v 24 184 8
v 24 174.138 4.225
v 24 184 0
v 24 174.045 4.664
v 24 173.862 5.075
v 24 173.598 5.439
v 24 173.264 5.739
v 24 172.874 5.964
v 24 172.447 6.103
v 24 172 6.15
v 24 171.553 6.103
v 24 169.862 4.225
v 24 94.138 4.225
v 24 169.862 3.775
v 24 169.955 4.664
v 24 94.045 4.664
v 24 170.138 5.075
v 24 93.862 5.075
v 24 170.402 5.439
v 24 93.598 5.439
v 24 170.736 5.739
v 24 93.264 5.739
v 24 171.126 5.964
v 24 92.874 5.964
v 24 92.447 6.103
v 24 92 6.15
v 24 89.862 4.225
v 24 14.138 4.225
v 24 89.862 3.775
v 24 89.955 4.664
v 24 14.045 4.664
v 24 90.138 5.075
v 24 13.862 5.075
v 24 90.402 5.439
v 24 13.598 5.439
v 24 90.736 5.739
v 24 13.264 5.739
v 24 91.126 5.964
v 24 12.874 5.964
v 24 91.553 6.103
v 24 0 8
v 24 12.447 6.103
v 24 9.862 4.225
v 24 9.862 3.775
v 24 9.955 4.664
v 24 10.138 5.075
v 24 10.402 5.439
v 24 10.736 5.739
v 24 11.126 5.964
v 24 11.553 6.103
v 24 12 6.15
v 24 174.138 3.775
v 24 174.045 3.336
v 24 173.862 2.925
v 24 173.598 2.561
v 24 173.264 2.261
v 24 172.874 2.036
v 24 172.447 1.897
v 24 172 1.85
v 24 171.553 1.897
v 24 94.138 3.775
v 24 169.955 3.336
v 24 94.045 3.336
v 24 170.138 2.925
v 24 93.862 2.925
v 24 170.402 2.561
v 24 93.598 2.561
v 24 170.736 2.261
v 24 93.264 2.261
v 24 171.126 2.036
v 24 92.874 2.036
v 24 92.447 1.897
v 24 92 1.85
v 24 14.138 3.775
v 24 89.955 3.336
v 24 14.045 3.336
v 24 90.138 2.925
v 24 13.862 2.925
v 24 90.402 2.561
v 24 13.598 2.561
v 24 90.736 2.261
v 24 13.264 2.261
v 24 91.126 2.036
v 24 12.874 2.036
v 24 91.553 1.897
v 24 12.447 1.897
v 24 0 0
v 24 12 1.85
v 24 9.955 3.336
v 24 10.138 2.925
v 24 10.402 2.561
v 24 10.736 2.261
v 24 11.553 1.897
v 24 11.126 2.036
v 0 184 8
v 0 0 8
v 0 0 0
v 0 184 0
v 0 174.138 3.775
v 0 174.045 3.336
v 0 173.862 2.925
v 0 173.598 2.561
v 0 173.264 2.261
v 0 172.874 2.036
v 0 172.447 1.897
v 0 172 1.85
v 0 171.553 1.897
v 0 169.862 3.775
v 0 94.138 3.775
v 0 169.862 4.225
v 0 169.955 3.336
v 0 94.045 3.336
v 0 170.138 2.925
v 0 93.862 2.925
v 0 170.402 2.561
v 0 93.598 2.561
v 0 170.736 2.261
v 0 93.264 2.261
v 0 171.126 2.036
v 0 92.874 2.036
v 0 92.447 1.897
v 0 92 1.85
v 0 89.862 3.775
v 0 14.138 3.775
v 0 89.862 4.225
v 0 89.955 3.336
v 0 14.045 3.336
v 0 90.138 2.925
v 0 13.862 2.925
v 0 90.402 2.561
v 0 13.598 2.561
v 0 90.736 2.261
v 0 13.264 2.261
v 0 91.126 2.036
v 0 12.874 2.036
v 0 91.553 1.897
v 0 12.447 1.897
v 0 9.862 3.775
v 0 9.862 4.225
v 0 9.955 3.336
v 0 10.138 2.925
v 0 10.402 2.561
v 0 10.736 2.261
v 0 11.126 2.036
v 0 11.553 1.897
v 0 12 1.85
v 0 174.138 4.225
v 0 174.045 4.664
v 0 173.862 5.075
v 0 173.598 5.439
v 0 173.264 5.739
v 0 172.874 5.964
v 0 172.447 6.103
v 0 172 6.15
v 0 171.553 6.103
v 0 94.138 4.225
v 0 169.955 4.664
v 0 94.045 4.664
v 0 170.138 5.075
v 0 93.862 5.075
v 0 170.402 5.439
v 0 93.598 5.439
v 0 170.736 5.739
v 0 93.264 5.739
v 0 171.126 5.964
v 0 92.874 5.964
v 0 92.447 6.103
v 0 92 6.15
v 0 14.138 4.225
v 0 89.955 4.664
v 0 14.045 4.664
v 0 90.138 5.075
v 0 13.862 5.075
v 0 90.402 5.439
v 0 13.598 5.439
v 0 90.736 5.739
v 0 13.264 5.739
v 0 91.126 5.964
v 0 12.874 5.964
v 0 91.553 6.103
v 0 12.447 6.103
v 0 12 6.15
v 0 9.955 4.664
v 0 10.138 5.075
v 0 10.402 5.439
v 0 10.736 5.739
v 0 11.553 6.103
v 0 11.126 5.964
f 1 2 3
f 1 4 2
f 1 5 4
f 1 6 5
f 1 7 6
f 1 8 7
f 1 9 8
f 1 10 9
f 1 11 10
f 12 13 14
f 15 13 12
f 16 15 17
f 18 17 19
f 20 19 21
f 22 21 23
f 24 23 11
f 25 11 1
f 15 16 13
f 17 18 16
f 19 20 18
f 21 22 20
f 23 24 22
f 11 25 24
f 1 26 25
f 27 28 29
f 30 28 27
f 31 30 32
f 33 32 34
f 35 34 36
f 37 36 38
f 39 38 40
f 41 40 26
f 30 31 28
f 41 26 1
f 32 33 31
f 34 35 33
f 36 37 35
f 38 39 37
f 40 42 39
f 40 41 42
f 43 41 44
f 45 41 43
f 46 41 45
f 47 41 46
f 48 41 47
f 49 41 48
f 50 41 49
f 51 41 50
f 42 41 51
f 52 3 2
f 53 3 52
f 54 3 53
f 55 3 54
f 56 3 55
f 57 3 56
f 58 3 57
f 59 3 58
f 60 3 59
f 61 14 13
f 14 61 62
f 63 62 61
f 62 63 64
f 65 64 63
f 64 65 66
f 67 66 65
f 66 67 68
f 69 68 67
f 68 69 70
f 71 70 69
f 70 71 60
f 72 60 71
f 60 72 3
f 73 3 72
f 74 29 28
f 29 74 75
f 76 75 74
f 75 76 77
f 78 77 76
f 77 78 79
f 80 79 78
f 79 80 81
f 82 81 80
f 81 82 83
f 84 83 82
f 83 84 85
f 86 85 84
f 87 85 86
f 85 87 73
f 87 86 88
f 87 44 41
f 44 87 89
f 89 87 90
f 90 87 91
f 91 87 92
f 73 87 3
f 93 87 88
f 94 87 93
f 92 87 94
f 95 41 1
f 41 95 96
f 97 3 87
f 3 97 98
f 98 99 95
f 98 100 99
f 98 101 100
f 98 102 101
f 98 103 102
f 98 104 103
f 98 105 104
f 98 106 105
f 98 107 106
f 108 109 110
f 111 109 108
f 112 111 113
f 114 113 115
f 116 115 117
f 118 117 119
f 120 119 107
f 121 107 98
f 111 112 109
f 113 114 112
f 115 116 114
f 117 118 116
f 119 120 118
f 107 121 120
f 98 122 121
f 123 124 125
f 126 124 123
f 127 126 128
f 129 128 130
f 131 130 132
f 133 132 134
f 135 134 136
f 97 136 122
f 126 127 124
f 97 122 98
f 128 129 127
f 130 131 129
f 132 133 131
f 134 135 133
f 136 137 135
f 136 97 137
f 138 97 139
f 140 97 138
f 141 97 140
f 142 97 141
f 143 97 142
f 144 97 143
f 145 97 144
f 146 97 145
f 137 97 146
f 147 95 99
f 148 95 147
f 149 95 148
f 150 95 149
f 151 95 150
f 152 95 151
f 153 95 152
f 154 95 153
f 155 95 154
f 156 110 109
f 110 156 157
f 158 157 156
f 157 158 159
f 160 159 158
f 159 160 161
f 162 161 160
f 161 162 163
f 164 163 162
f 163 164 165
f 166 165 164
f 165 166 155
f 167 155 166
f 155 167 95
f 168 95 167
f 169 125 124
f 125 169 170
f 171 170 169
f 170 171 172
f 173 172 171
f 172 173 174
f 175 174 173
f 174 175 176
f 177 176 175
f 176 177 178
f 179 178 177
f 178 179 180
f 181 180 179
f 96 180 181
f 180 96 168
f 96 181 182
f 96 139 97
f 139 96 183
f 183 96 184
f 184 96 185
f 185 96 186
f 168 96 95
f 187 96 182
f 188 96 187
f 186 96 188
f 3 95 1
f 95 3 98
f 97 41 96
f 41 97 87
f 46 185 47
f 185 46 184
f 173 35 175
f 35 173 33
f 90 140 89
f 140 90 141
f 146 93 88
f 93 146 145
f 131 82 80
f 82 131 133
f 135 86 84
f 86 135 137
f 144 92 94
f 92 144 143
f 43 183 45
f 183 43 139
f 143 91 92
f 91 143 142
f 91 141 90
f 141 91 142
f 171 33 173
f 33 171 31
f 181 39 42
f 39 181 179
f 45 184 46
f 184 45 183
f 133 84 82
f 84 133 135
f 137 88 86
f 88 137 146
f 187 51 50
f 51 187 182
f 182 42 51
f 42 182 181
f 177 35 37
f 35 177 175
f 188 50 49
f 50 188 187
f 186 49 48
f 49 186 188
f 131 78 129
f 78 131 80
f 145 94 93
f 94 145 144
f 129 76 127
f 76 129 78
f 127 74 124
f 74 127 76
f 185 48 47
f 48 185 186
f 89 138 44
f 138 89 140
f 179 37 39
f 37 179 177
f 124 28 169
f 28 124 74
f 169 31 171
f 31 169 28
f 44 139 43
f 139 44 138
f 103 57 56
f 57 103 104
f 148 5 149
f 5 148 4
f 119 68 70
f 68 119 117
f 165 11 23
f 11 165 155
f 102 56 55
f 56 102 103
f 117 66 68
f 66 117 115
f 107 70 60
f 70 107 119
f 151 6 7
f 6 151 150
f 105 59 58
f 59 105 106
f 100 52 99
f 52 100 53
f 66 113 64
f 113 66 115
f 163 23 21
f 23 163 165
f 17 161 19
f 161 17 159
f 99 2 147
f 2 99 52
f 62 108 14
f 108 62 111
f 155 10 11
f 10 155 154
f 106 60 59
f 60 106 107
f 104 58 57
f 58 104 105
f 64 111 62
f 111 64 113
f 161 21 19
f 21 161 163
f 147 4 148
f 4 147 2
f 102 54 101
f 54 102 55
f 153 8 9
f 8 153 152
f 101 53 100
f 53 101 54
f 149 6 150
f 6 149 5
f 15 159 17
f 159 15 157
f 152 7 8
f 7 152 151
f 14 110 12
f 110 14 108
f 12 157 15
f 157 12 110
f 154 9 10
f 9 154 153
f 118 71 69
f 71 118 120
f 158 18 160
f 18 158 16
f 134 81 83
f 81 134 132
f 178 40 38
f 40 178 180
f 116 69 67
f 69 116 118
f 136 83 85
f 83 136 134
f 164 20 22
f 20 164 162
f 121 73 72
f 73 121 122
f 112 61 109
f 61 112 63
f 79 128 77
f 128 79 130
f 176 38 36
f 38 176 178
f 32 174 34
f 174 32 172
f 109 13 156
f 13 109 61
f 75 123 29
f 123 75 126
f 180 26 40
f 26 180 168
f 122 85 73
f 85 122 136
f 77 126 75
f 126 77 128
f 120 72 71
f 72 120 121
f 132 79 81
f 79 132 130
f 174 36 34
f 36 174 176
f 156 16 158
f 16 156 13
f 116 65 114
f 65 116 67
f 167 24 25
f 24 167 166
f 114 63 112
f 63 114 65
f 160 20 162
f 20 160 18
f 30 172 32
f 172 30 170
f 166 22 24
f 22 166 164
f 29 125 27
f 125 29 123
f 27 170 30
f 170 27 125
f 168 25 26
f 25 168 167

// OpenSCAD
difference() {
union () {
    cube([24,184,8]);
}
    translate([-4,12,4])
    rotate([0,90,0])
    cylinder(r=2.15,60, $fn=30);
    
    translate([-4,172,4])
    rotate([0,90,0])
    cylinder(r=2.15,60, $fn=30);
    
    translate([-4,92,4])
    rotate([0,90,0])
    cylinder(r=2.15,60, $fn=30);
}
